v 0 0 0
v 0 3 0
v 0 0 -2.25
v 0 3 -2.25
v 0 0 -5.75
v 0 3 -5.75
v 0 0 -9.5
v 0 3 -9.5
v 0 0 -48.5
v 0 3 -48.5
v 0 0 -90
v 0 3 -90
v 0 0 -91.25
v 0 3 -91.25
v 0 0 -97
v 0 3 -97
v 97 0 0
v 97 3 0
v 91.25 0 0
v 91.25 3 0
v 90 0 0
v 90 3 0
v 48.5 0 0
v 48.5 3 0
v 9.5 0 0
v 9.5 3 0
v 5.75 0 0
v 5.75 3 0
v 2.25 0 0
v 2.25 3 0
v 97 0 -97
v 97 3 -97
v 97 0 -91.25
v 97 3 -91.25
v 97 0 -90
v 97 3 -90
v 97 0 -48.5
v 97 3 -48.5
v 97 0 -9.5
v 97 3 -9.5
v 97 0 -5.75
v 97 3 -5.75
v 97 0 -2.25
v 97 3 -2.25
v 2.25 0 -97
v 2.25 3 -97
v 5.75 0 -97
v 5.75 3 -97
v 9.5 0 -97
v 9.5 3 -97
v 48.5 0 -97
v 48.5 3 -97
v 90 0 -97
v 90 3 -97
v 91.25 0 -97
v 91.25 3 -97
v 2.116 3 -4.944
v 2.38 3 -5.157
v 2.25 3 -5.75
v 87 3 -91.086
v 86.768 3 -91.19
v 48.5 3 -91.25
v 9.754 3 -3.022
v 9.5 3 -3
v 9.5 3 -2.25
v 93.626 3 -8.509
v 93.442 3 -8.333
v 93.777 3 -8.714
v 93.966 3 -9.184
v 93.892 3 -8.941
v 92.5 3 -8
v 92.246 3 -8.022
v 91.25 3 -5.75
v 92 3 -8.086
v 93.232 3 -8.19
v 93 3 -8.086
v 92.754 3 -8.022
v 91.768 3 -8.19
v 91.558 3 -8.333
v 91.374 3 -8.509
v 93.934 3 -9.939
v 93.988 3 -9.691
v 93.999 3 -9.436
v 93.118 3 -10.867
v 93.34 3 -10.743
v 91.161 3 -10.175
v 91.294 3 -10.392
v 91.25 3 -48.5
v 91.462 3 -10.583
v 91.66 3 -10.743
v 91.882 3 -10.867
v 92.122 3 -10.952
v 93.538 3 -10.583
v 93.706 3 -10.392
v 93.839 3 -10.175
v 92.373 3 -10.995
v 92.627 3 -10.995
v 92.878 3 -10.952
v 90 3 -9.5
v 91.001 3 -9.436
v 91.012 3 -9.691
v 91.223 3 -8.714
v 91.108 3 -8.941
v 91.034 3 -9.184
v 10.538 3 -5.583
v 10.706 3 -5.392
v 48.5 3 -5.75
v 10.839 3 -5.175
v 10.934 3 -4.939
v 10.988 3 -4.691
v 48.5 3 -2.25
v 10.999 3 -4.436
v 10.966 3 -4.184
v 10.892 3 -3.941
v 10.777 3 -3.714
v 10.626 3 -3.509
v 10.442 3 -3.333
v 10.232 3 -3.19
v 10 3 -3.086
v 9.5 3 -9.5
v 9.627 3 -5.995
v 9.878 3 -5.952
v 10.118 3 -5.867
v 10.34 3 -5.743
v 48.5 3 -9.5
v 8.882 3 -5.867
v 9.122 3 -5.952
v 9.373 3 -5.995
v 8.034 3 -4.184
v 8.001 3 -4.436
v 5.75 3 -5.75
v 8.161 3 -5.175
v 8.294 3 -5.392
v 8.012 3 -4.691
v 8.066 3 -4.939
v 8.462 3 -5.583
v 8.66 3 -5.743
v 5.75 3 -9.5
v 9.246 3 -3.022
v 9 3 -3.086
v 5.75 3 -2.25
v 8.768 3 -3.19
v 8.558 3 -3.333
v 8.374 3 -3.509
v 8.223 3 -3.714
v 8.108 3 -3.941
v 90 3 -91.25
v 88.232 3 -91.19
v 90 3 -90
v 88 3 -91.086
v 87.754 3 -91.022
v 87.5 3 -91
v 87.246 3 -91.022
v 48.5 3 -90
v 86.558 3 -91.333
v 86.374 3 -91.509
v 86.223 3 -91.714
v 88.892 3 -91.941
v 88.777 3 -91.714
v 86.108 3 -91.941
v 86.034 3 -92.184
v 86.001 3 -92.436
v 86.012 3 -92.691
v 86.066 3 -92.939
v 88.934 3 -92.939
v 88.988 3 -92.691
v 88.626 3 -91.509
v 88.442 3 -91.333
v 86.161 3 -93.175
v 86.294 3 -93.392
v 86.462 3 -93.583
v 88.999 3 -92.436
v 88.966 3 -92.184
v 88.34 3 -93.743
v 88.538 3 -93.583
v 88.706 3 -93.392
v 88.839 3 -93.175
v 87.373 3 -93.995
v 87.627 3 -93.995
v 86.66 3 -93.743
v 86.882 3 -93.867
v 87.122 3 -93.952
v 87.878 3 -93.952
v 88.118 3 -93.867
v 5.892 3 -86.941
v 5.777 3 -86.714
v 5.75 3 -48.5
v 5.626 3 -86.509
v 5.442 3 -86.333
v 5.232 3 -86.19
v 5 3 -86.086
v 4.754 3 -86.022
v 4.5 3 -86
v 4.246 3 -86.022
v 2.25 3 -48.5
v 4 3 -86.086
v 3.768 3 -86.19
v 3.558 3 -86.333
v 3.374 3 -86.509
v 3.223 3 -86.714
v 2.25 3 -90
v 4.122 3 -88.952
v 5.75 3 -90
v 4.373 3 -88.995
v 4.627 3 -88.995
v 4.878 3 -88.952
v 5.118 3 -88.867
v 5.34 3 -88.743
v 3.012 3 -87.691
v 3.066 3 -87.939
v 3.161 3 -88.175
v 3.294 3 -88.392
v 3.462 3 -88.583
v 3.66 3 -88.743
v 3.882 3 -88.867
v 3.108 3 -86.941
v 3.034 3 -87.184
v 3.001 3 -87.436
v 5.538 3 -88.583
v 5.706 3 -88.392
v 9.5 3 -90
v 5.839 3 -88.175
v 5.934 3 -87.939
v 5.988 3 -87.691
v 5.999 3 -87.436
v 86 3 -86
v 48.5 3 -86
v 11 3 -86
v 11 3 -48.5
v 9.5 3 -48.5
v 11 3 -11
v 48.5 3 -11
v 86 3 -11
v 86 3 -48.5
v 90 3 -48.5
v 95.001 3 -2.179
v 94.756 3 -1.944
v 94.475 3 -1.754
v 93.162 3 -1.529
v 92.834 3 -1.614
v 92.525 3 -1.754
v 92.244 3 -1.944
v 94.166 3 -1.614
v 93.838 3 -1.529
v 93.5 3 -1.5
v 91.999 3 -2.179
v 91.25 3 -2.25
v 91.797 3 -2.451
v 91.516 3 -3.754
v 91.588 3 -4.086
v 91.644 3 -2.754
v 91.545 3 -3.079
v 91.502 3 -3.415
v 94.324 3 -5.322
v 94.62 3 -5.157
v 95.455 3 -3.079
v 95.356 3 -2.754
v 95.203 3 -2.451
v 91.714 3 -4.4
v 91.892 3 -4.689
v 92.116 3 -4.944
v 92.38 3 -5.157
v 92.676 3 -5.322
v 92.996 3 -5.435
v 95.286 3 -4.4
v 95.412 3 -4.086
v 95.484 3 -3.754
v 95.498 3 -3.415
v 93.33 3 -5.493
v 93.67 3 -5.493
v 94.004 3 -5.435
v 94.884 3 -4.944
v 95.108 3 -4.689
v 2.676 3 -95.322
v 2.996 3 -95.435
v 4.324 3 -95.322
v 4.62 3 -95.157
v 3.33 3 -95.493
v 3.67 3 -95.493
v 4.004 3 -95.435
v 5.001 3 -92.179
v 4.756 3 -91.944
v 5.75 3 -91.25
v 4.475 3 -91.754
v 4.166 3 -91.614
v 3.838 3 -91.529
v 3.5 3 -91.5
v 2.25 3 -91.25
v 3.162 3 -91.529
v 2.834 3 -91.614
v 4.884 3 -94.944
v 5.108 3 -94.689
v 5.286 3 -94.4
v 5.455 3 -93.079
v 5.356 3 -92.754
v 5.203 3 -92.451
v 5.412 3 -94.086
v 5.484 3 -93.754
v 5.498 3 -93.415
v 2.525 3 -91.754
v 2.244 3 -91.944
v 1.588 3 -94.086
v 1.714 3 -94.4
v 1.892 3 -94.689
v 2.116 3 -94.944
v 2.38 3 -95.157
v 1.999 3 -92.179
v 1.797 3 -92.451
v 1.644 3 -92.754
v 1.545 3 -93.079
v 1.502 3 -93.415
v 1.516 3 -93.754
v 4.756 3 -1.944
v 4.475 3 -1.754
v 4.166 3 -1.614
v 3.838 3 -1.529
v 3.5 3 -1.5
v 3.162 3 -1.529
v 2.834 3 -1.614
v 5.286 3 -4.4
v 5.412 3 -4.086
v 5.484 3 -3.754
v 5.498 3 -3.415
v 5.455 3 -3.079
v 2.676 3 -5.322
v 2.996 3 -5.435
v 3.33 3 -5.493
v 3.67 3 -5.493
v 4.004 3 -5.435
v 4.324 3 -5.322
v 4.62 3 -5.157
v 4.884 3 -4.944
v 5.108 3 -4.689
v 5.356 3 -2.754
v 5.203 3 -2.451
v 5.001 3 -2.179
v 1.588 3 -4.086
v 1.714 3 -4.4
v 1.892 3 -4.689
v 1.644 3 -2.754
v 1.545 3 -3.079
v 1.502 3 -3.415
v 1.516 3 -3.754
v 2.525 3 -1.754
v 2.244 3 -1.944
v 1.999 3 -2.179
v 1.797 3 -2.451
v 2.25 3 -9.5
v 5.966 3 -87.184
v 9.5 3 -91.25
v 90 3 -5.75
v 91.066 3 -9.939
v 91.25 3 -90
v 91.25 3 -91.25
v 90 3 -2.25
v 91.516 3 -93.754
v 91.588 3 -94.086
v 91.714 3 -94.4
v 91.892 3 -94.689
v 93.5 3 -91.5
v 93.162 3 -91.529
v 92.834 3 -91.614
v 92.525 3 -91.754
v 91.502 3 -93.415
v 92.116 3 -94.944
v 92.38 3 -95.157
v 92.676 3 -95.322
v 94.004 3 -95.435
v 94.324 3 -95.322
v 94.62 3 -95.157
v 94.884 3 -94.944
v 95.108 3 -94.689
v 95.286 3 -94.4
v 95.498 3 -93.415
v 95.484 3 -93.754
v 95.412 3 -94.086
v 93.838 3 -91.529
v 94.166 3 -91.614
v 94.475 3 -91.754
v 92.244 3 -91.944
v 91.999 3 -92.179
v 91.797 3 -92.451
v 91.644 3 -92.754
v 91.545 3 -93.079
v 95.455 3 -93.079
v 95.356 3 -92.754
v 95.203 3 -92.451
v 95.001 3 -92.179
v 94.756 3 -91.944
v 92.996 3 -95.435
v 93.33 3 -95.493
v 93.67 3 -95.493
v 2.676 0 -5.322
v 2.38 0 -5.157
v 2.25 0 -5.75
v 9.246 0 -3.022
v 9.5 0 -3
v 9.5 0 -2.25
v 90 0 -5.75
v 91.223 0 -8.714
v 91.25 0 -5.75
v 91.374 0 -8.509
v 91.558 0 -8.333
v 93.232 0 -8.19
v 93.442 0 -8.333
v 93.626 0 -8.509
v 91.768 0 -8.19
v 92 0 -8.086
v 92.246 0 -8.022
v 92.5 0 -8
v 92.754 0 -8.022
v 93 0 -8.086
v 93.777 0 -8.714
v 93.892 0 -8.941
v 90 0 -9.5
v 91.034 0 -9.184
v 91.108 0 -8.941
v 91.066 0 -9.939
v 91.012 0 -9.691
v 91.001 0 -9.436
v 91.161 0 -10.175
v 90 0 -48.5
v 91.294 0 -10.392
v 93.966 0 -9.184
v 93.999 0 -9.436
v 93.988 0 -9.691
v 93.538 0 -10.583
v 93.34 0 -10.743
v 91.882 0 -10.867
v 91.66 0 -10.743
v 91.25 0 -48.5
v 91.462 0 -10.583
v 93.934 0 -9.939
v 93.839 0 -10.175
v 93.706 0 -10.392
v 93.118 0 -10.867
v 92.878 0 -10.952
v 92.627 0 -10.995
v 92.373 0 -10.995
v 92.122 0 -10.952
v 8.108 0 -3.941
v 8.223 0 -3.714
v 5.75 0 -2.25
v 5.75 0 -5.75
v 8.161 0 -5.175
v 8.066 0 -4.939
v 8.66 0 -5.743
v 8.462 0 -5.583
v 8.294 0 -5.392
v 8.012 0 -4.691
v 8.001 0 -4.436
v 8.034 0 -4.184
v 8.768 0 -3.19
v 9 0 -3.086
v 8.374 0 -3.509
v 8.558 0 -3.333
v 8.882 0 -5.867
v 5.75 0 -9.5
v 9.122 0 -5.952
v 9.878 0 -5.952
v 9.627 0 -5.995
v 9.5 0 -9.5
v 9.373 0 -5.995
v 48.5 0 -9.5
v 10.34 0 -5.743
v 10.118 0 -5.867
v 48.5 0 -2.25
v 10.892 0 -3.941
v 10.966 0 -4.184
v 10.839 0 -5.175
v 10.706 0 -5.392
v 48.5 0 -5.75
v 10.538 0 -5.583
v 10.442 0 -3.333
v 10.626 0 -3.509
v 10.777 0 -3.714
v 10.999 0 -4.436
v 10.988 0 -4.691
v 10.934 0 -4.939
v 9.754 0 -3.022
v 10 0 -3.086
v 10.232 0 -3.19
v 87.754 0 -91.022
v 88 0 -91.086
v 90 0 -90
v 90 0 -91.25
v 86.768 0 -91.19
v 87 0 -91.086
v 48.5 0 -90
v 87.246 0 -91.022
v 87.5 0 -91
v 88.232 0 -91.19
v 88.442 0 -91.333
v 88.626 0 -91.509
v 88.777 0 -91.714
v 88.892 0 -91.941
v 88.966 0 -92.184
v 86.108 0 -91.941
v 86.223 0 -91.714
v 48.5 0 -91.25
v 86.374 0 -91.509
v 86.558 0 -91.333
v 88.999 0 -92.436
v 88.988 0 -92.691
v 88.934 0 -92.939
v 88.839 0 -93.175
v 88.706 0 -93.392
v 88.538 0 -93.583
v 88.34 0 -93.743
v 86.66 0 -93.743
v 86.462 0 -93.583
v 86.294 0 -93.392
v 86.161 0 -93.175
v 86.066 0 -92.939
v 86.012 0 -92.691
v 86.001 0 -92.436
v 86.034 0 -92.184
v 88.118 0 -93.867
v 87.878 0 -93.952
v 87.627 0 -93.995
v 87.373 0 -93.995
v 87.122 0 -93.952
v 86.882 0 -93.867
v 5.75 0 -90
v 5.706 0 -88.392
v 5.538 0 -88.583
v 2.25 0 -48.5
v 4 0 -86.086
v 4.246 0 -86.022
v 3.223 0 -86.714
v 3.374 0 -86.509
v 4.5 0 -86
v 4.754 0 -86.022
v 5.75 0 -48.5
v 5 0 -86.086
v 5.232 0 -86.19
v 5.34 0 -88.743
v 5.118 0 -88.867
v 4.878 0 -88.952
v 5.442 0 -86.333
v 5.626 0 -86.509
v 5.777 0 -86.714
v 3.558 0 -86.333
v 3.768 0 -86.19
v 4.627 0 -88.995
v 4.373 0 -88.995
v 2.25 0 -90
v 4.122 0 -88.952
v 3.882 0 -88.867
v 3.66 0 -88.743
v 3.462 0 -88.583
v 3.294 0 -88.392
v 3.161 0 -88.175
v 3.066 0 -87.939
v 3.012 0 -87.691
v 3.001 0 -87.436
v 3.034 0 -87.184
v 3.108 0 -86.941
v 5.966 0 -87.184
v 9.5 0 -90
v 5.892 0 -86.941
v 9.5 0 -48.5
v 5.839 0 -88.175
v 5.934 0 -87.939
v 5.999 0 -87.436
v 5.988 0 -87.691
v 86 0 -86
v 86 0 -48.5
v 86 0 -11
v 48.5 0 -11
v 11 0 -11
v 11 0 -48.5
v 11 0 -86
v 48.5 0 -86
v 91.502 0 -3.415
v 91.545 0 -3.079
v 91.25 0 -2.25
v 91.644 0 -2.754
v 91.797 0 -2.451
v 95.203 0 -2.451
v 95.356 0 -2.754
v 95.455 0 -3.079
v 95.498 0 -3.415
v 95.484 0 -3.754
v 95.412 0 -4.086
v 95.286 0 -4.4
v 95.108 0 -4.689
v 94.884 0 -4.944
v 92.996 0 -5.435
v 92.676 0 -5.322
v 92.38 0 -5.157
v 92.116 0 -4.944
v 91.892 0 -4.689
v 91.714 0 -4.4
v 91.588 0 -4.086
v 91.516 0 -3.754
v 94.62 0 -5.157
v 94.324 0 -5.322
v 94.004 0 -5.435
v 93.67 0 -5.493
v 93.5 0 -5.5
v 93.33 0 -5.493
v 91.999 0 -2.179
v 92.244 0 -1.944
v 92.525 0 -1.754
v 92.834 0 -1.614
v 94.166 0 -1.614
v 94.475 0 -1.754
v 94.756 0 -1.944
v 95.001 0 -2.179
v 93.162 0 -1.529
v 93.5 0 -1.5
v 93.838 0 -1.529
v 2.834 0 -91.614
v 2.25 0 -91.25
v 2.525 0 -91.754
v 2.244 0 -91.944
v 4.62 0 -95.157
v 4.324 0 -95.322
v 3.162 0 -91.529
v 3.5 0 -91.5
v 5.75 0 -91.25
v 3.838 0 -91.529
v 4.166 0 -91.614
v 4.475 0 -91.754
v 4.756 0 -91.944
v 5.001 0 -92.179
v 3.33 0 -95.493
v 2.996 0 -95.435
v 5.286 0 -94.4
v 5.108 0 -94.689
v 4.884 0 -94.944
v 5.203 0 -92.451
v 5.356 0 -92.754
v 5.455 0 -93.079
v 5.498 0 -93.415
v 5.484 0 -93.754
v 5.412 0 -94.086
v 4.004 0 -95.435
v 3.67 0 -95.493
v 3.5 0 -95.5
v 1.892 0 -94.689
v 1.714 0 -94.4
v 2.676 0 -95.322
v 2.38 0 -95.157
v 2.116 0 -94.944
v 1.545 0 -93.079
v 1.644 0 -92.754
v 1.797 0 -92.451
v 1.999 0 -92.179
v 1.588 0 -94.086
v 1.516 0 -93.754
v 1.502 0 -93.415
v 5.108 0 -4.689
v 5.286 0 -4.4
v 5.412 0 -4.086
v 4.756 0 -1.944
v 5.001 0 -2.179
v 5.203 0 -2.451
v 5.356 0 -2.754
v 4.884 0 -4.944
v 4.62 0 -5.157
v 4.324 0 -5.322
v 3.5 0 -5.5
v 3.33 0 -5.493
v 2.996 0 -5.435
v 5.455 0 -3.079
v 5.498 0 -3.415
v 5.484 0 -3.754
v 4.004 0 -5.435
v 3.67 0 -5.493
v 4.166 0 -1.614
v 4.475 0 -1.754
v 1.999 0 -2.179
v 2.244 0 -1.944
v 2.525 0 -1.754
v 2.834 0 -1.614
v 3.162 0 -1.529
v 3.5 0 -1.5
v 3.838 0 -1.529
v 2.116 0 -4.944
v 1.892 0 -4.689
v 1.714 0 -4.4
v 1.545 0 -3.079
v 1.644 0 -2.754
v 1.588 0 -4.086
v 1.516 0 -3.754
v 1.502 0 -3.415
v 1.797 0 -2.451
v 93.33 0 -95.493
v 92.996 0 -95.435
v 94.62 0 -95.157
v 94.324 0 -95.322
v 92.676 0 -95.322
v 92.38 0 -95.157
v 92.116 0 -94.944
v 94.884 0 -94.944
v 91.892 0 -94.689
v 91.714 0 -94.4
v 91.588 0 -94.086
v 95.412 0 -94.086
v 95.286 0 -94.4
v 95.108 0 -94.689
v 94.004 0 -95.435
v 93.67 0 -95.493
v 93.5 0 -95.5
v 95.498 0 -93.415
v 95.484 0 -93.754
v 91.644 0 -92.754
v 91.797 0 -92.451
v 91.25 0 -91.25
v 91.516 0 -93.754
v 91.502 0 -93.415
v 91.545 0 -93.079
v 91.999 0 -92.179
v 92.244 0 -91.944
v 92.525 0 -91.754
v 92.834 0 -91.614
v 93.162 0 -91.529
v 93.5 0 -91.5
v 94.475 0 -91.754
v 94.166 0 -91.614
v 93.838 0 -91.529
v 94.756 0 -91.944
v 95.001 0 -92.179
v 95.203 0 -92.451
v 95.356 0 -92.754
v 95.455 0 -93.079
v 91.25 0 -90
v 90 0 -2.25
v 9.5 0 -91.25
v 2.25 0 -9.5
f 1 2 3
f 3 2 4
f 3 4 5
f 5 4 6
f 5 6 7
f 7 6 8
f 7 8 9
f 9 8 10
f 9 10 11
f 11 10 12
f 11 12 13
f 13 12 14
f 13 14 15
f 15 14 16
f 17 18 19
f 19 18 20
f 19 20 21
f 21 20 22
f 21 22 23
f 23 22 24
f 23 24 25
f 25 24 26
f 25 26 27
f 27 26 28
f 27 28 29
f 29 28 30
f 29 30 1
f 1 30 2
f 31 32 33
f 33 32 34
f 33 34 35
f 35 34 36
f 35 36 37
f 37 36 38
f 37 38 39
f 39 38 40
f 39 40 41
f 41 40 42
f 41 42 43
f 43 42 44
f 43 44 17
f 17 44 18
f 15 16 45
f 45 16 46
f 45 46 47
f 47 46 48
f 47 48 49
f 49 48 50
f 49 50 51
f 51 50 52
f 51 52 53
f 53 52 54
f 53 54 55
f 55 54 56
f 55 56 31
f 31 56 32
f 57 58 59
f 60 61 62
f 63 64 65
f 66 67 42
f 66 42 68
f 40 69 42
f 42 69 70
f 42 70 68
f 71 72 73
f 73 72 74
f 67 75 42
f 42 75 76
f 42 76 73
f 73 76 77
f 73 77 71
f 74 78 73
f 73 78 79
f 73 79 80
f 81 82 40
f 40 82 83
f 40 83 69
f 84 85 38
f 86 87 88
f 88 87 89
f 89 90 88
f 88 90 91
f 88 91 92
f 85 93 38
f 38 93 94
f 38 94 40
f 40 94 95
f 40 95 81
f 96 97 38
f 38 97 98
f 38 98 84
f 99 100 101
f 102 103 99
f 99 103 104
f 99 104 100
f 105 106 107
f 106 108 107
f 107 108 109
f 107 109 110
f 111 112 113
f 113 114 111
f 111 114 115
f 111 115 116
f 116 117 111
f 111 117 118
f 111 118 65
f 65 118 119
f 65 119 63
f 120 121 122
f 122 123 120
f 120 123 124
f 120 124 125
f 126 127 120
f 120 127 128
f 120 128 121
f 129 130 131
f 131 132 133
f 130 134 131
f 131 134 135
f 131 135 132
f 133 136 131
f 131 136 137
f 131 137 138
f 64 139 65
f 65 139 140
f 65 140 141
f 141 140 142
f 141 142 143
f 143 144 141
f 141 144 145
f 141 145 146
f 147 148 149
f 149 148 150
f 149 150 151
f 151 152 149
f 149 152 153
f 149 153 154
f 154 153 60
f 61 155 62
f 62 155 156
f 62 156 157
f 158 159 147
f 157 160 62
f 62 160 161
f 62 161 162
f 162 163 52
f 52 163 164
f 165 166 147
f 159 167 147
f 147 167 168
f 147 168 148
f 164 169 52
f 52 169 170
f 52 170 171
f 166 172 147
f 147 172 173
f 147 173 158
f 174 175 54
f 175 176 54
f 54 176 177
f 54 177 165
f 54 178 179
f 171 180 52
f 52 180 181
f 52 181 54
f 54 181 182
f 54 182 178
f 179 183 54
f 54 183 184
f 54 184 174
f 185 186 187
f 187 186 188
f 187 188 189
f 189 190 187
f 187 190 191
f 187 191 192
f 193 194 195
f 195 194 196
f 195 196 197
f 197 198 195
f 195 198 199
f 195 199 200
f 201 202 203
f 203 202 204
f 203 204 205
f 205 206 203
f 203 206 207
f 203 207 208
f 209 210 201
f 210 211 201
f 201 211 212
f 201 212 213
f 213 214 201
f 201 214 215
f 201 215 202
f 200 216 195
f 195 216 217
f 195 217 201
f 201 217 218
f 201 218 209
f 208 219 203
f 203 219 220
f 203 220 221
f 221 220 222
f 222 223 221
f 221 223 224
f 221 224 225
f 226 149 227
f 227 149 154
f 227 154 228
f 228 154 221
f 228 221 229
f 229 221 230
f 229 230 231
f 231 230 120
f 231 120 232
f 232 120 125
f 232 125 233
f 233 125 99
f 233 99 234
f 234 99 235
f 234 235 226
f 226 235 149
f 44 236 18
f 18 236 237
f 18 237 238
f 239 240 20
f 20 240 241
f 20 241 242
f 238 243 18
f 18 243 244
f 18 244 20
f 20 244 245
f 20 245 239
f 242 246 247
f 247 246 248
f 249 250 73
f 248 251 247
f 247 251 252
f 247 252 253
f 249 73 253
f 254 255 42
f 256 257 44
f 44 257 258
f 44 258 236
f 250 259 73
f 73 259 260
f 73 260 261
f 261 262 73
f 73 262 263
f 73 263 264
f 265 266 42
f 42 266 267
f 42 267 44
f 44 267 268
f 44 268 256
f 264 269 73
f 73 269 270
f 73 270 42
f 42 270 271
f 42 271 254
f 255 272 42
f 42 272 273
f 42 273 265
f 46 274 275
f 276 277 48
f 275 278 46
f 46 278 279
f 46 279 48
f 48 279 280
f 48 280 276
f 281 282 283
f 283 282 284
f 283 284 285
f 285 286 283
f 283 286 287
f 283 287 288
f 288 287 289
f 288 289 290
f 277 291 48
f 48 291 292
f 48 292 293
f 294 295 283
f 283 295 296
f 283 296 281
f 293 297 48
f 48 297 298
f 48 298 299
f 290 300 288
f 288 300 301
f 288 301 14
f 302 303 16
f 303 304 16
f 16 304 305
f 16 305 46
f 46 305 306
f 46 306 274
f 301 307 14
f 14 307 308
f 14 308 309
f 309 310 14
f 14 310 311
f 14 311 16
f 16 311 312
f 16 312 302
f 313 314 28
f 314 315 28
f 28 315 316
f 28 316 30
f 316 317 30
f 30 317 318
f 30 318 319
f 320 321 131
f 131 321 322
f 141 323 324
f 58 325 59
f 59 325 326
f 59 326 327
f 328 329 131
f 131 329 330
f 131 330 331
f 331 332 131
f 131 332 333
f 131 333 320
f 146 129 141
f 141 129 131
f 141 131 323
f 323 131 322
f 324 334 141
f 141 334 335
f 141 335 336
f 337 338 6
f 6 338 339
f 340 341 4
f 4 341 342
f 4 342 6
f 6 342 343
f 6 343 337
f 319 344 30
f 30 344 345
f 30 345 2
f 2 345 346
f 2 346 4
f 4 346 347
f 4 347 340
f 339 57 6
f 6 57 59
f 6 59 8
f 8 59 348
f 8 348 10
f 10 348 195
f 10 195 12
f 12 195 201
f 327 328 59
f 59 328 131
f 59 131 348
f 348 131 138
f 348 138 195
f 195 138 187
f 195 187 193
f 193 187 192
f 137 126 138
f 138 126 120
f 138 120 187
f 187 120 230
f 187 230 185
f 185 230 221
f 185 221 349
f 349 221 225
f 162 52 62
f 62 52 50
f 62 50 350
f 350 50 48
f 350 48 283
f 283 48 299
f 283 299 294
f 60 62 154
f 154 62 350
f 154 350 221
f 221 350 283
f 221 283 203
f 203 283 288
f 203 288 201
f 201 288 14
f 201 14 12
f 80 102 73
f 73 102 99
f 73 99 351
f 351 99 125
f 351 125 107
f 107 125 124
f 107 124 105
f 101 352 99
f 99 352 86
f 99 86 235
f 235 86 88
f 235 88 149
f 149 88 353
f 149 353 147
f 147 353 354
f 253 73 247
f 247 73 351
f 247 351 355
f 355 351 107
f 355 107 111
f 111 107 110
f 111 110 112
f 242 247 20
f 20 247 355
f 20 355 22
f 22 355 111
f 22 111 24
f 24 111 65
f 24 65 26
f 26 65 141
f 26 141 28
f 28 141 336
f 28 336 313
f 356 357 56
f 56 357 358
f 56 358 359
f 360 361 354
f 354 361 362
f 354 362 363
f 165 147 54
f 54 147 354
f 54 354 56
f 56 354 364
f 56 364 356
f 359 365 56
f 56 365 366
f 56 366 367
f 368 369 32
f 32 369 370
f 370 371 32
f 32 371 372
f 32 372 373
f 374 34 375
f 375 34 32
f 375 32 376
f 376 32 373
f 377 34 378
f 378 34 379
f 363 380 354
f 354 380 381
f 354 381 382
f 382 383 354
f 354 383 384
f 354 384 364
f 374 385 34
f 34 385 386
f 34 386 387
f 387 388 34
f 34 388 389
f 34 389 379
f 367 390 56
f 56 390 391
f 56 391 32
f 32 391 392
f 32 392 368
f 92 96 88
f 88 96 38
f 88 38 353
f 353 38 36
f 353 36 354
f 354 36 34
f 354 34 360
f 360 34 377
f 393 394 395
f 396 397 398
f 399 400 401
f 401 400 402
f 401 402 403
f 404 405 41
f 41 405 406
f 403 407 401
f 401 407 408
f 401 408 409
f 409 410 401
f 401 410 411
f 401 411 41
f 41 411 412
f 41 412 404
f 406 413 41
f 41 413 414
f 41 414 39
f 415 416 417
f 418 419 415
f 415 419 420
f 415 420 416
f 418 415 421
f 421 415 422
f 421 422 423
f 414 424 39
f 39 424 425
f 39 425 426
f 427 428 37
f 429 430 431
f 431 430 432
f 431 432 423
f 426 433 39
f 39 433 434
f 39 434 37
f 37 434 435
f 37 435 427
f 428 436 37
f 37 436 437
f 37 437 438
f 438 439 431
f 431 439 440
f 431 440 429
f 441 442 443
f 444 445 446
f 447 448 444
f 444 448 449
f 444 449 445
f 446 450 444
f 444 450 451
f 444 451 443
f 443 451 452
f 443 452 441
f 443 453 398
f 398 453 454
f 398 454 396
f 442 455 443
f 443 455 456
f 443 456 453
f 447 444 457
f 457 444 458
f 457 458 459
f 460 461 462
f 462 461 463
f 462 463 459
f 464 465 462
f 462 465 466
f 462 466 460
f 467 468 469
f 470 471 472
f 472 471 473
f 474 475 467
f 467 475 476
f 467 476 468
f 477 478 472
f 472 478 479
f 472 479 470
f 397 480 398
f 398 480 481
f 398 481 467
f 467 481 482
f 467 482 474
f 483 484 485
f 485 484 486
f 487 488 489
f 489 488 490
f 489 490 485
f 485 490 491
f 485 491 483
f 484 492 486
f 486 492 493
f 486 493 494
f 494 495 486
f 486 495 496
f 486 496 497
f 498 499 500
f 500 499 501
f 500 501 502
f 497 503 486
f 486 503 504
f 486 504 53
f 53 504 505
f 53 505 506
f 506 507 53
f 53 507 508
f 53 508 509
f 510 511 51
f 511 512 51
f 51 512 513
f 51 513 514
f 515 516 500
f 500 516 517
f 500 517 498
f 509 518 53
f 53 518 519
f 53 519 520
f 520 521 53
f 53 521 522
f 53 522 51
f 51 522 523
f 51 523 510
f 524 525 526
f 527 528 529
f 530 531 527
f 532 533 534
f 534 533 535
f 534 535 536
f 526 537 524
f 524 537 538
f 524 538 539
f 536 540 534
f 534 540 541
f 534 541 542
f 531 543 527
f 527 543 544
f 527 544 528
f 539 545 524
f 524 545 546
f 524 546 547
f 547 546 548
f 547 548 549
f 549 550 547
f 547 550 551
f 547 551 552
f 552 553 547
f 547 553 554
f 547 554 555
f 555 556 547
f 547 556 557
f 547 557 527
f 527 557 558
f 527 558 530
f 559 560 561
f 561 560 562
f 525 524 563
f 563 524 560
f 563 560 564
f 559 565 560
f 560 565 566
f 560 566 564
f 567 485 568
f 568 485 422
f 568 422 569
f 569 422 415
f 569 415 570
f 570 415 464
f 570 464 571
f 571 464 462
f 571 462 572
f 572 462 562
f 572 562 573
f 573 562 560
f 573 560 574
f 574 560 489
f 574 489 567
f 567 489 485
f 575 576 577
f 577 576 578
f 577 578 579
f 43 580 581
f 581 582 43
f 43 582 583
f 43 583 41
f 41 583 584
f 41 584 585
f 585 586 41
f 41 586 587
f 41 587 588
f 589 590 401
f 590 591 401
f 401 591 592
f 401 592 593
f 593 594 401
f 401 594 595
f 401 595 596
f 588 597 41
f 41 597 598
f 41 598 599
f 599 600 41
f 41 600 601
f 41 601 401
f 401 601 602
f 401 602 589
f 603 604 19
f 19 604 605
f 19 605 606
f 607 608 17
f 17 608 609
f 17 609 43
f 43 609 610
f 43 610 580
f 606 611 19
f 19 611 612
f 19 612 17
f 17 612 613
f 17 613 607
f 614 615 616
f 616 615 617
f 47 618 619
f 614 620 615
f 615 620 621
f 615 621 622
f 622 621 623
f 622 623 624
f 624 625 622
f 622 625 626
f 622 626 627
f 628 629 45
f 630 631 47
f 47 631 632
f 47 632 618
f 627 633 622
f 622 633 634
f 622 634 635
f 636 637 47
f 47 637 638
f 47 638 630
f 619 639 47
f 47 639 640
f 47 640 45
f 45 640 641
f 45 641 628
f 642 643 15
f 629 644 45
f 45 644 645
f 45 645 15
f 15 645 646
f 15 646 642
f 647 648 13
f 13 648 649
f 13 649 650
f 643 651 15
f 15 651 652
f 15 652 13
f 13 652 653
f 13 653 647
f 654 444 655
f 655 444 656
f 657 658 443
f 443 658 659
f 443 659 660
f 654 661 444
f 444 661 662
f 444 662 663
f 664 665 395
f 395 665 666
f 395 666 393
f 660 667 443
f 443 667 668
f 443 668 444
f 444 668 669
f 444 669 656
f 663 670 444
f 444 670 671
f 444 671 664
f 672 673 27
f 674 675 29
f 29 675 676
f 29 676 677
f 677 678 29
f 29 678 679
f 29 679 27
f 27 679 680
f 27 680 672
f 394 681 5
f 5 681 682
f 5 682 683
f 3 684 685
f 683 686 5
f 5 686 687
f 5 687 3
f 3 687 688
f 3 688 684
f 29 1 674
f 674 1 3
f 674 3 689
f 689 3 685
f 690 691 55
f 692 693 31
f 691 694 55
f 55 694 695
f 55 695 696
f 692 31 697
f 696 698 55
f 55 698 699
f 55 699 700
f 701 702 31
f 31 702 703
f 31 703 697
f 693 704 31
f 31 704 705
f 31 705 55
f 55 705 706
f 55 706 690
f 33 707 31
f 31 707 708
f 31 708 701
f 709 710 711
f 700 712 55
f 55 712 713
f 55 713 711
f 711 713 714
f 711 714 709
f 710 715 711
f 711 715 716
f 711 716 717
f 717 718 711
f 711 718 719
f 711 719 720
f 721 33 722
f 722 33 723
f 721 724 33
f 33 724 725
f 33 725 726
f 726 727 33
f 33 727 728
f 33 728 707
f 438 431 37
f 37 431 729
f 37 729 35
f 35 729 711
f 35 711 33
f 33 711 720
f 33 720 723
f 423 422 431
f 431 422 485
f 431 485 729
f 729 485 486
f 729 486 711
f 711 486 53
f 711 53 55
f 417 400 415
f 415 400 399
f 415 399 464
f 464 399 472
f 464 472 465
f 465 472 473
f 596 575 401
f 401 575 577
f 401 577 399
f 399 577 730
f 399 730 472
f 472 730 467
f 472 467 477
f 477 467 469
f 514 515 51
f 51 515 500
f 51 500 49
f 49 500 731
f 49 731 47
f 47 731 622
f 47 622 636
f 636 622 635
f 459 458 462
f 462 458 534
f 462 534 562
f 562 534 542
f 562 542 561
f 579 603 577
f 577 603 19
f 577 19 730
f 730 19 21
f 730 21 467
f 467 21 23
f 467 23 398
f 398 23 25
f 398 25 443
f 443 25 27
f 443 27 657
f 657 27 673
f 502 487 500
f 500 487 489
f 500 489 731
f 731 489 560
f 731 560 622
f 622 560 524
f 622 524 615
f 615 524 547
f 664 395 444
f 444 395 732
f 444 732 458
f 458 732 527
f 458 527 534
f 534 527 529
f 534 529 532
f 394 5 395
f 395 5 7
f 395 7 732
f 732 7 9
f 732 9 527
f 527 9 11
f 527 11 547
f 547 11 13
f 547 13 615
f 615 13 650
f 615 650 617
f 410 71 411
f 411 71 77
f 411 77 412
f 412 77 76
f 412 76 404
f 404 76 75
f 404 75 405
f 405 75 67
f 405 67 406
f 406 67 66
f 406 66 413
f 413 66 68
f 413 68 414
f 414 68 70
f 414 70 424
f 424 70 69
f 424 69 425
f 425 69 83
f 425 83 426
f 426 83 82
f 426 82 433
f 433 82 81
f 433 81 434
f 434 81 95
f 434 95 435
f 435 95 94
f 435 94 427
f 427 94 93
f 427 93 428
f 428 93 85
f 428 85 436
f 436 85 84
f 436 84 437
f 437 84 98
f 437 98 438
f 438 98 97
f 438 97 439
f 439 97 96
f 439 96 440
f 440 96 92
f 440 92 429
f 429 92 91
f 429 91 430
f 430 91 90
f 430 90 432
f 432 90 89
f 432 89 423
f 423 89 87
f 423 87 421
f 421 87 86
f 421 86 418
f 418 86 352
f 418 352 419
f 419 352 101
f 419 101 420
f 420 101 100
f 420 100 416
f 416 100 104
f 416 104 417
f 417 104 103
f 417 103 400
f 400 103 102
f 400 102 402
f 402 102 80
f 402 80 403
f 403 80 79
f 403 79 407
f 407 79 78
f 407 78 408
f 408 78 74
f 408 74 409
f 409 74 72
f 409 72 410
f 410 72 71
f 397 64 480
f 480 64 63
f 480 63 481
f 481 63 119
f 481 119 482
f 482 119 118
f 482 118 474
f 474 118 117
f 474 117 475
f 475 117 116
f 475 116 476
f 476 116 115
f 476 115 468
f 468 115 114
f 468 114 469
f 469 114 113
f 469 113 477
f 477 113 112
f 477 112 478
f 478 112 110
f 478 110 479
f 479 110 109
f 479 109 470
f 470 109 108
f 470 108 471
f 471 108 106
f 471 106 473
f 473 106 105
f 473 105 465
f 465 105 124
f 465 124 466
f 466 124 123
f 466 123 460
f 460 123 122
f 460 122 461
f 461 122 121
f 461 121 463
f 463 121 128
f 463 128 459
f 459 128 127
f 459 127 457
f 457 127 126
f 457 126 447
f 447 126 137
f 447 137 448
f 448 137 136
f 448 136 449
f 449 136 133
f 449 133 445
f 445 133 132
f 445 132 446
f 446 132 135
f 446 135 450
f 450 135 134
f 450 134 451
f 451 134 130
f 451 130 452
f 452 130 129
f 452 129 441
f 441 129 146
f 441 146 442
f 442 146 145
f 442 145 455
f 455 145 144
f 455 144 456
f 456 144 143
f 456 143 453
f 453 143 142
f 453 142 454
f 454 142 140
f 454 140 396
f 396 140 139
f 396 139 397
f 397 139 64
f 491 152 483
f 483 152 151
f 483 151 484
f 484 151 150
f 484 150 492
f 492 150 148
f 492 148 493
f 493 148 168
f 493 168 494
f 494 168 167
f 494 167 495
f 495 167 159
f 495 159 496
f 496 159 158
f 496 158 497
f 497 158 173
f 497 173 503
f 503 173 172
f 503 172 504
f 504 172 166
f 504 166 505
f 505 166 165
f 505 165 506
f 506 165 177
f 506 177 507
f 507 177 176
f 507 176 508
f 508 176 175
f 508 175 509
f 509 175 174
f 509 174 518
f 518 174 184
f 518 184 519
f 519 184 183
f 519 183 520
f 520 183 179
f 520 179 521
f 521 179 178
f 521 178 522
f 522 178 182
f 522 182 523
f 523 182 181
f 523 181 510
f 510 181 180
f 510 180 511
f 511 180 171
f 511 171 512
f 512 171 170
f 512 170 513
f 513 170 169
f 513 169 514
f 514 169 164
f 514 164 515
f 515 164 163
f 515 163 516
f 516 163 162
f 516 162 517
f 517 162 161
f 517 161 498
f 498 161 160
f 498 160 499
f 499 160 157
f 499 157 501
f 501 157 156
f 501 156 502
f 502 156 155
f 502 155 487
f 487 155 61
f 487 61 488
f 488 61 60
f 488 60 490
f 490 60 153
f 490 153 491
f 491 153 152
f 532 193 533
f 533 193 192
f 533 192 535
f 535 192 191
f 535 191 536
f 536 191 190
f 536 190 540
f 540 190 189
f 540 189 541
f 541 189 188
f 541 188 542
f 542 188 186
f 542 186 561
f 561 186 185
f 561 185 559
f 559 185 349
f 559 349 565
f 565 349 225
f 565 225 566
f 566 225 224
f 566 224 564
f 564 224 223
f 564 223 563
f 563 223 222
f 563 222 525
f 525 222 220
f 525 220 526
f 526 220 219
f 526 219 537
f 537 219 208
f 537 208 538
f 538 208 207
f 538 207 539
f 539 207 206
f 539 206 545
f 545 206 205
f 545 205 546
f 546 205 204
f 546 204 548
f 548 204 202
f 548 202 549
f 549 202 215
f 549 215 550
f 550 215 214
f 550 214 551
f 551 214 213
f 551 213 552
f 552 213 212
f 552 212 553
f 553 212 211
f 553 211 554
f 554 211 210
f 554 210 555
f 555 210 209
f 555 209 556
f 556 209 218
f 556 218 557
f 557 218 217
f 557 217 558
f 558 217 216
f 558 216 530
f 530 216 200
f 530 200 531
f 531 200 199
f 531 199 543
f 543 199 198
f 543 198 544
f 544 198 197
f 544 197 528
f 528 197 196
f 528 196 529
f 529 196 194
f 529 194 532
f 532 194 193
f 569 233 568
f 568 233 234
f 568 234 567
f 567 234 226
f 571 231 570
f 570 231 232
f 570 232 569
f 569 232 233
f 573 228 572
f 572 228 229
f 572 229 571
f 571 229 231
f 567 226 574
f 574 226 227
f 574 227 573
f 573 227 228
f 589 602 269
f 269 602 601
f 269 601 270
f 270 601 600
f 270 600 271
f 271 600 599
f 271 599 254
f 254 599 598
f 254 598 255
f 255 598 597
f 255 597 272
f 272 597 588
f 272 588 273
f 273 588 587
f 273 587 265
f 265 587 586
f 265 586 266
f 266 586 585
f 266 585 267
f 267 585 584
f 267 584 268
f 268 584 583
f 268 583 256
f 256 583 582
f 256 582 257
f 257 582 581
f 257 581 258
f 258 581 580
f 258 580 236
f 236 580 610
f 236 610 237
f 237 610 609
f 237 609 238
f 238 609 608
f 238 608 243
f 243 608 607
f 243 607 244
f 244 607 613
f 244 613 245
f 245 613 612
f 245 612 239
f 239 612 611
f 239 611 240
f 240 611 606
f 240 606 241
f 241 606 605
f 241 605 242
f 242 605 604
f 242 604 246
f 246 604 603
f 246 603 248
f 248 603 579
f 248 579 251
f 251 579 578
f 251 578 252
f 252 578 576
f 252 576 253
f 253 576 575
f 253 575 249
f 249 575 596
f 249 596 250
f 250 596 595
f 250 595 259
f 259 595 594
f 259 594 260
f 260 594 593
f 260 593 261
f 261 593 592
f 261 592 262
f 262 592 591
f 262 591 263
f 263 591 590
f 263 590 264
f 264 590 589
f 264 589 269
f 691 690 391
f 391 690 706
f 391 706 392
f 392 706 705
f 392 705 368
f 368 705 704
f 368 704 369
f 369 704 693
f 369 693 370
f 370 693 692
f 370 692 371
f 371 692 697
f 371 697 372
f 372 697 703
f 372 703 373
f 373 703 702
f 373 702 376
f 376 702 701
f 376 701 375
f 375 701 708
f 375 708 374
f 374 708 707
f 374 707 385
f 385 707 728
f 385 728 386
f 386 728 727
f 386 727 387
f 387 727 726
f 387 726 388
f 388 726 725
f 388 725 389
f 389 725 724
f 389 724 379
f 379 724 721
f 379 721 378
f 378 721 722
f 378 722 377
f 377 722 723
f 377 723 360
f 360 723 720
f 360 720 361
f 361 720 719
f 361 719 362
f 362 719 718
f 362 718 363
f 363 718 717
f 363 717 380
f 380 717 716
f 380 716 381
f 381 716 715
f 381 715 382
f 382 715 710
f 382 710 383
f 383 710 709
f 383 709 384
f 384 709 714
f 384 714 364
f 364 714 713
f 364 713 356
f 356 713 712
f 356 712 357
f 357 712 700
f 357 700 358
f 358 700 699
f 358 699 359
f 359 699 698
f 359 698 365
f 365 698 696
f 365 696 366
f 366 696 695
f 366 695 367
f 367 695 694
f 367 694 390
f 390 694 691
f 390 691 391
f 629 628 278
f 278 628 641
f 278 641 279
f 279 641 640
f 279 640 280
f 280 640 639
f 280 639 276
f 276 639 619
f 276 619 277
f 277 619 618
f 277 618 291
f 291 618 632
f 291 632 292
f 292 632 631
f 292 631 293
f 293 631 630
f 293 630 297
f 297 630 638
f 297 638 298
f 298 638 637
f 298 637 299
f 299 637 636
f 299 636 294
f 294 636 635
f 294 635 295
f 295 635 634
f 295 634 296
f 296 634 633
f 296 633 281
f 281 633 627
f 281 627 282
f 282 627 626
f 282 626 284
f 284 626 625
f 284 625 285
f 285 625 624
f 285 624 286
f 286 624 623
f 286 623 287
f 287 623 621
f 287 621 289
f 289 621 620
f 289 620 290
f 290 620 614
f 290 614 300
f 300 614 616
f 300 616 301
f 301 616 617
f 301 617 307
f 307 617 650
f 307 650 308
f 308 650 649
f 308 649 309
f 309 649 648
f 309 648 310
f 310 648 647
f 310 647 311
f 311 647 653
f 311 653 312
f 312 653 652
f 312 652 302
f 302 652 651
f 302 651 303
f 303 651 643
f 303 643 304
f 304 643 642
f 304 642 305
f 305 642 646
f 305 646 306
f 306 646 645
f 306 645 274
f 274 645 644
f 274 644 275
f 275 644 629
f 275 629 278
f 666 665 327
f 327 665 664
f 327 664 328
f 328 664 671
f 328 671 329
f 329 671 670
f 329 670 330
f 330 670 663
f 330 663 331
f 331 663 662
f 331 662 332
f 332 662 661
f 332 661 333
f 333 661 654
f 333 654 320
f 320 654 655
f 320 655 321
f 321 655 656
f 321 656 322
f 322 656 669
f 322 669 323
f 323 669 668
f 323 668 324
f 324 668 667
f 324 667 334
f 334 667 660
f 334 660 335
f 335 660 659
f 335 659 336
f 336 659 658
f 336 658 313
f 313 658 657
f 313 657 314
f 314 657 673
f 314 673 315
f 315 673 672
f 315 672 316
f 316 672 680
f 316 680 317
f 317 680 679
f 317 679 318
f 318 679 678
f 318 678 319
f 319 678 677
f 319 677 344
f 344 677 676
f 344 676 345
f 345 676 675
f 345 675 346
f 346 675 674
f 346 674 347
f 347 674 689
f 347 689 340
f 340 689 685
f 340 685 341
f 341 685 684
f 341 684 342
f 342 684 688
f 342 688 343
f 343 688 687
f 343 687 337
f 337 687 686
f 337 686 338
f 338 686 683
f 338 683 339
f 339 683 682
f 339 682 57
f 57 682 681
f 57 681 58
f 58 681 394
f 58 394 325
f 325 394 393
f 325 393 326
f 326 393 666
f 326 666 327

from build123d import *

# Parameters (mm, degrees)
SKETCH1_W           = 97
SKETCH1_H           = 97
BOSS_EXTRUDE1_DEPTH = 3
SKETCH2_R           = 1.5
CUT_EXTRUDE4_DEPTH  = 138.211515552
SKETCH3_W           = 75
SKETCH3_H           = 75
CUT_EXTRUDE5_DEPTH  = 7
SKETCH4_R           = 2
CUT_EXTRUDE6_DEPTH  = 10


with BuildPart() as part:
    # Sketch1 → Boss-Extrude1 (new body)
    with BuildSketch(Plane(origin=(0, 0, 0), x_dir=(1, 0, 0), z_dir=(0, 1, 0))):
        with Locations((48.5, 48.5)):
            Rectangle(SKETCH1_W, SKETCH1_H)
    extrude(amount=BOSS_EXTRUDE1_DEPTH)

    # Sketch2 → Cut-Extrude4 (cut, through all)
    with BuildSketch(Plane(origin=(0, 3, 0), x_dir=(1, 0, 0), z_dir=(0, 1, 0))):
        with Locations(Location((4.5, 87.5, 0), (0, 0, 270))):
            Circle(SKETCH2_R)
        with Locations(Location((87.5, 92.5, 0), (0, 0, 270))):
            Circle(SKETCH2_R)
        with Locations(Location((92.5, 9.5, 0), (0, 0, 270))):
            Circle(SKETCH2_R)
        with Locations(Location((9.5, 4.5, 0), (0, 0, 270))):
            Circle(SKETCH2_R)
    extrude(amount=-CUT_EXTRUDE4_DEPTH, mode=Mode.SUBTRACT)

    # Sketch3 → Cut-Extrude5 (cut)
    with BuildSketch(Plane(origin=(0, 3, 0), x_dir=(1, 0, 0), z_dir=(0, 1, 0))):
        with Locations((48.5, 48.5)):
            Rectangle(SKETCH3_W, SKETCH3_H)
    extrude(amount=-CUT_EXTRUDE5_DEPTH, mode=Mode.SUBTRACT)

    # Sketch4 → Cut-Extrude6 (cut)
    with BuildSketch(Plane(origin=(0, 3, 0), x_dir=(1, 0, 0), z_dir=(0, 1, 0))):
        with Locations(Location((93.5, 3.5, 0), (0, 0, 270))):
            Circle(SKETCH4_R)
        with Locations(Location((3.5, 93.5, 0), (0, 0, 270))):
            Circle(SKETCH4_R)
        with Locations(Location((93.5, 93.5, 0), (0, 0, 270))):
            Circle(SKETCH4_R)
        with Locations(Location((3.5, 3.5, 0), (0, 0, 270))):
            Circle(SKETCH4_R)
    extrude(amount=-CUT_EXTRUDE6_DEPTH, mode=Mode.SUBTRACT)


solid = part.part
